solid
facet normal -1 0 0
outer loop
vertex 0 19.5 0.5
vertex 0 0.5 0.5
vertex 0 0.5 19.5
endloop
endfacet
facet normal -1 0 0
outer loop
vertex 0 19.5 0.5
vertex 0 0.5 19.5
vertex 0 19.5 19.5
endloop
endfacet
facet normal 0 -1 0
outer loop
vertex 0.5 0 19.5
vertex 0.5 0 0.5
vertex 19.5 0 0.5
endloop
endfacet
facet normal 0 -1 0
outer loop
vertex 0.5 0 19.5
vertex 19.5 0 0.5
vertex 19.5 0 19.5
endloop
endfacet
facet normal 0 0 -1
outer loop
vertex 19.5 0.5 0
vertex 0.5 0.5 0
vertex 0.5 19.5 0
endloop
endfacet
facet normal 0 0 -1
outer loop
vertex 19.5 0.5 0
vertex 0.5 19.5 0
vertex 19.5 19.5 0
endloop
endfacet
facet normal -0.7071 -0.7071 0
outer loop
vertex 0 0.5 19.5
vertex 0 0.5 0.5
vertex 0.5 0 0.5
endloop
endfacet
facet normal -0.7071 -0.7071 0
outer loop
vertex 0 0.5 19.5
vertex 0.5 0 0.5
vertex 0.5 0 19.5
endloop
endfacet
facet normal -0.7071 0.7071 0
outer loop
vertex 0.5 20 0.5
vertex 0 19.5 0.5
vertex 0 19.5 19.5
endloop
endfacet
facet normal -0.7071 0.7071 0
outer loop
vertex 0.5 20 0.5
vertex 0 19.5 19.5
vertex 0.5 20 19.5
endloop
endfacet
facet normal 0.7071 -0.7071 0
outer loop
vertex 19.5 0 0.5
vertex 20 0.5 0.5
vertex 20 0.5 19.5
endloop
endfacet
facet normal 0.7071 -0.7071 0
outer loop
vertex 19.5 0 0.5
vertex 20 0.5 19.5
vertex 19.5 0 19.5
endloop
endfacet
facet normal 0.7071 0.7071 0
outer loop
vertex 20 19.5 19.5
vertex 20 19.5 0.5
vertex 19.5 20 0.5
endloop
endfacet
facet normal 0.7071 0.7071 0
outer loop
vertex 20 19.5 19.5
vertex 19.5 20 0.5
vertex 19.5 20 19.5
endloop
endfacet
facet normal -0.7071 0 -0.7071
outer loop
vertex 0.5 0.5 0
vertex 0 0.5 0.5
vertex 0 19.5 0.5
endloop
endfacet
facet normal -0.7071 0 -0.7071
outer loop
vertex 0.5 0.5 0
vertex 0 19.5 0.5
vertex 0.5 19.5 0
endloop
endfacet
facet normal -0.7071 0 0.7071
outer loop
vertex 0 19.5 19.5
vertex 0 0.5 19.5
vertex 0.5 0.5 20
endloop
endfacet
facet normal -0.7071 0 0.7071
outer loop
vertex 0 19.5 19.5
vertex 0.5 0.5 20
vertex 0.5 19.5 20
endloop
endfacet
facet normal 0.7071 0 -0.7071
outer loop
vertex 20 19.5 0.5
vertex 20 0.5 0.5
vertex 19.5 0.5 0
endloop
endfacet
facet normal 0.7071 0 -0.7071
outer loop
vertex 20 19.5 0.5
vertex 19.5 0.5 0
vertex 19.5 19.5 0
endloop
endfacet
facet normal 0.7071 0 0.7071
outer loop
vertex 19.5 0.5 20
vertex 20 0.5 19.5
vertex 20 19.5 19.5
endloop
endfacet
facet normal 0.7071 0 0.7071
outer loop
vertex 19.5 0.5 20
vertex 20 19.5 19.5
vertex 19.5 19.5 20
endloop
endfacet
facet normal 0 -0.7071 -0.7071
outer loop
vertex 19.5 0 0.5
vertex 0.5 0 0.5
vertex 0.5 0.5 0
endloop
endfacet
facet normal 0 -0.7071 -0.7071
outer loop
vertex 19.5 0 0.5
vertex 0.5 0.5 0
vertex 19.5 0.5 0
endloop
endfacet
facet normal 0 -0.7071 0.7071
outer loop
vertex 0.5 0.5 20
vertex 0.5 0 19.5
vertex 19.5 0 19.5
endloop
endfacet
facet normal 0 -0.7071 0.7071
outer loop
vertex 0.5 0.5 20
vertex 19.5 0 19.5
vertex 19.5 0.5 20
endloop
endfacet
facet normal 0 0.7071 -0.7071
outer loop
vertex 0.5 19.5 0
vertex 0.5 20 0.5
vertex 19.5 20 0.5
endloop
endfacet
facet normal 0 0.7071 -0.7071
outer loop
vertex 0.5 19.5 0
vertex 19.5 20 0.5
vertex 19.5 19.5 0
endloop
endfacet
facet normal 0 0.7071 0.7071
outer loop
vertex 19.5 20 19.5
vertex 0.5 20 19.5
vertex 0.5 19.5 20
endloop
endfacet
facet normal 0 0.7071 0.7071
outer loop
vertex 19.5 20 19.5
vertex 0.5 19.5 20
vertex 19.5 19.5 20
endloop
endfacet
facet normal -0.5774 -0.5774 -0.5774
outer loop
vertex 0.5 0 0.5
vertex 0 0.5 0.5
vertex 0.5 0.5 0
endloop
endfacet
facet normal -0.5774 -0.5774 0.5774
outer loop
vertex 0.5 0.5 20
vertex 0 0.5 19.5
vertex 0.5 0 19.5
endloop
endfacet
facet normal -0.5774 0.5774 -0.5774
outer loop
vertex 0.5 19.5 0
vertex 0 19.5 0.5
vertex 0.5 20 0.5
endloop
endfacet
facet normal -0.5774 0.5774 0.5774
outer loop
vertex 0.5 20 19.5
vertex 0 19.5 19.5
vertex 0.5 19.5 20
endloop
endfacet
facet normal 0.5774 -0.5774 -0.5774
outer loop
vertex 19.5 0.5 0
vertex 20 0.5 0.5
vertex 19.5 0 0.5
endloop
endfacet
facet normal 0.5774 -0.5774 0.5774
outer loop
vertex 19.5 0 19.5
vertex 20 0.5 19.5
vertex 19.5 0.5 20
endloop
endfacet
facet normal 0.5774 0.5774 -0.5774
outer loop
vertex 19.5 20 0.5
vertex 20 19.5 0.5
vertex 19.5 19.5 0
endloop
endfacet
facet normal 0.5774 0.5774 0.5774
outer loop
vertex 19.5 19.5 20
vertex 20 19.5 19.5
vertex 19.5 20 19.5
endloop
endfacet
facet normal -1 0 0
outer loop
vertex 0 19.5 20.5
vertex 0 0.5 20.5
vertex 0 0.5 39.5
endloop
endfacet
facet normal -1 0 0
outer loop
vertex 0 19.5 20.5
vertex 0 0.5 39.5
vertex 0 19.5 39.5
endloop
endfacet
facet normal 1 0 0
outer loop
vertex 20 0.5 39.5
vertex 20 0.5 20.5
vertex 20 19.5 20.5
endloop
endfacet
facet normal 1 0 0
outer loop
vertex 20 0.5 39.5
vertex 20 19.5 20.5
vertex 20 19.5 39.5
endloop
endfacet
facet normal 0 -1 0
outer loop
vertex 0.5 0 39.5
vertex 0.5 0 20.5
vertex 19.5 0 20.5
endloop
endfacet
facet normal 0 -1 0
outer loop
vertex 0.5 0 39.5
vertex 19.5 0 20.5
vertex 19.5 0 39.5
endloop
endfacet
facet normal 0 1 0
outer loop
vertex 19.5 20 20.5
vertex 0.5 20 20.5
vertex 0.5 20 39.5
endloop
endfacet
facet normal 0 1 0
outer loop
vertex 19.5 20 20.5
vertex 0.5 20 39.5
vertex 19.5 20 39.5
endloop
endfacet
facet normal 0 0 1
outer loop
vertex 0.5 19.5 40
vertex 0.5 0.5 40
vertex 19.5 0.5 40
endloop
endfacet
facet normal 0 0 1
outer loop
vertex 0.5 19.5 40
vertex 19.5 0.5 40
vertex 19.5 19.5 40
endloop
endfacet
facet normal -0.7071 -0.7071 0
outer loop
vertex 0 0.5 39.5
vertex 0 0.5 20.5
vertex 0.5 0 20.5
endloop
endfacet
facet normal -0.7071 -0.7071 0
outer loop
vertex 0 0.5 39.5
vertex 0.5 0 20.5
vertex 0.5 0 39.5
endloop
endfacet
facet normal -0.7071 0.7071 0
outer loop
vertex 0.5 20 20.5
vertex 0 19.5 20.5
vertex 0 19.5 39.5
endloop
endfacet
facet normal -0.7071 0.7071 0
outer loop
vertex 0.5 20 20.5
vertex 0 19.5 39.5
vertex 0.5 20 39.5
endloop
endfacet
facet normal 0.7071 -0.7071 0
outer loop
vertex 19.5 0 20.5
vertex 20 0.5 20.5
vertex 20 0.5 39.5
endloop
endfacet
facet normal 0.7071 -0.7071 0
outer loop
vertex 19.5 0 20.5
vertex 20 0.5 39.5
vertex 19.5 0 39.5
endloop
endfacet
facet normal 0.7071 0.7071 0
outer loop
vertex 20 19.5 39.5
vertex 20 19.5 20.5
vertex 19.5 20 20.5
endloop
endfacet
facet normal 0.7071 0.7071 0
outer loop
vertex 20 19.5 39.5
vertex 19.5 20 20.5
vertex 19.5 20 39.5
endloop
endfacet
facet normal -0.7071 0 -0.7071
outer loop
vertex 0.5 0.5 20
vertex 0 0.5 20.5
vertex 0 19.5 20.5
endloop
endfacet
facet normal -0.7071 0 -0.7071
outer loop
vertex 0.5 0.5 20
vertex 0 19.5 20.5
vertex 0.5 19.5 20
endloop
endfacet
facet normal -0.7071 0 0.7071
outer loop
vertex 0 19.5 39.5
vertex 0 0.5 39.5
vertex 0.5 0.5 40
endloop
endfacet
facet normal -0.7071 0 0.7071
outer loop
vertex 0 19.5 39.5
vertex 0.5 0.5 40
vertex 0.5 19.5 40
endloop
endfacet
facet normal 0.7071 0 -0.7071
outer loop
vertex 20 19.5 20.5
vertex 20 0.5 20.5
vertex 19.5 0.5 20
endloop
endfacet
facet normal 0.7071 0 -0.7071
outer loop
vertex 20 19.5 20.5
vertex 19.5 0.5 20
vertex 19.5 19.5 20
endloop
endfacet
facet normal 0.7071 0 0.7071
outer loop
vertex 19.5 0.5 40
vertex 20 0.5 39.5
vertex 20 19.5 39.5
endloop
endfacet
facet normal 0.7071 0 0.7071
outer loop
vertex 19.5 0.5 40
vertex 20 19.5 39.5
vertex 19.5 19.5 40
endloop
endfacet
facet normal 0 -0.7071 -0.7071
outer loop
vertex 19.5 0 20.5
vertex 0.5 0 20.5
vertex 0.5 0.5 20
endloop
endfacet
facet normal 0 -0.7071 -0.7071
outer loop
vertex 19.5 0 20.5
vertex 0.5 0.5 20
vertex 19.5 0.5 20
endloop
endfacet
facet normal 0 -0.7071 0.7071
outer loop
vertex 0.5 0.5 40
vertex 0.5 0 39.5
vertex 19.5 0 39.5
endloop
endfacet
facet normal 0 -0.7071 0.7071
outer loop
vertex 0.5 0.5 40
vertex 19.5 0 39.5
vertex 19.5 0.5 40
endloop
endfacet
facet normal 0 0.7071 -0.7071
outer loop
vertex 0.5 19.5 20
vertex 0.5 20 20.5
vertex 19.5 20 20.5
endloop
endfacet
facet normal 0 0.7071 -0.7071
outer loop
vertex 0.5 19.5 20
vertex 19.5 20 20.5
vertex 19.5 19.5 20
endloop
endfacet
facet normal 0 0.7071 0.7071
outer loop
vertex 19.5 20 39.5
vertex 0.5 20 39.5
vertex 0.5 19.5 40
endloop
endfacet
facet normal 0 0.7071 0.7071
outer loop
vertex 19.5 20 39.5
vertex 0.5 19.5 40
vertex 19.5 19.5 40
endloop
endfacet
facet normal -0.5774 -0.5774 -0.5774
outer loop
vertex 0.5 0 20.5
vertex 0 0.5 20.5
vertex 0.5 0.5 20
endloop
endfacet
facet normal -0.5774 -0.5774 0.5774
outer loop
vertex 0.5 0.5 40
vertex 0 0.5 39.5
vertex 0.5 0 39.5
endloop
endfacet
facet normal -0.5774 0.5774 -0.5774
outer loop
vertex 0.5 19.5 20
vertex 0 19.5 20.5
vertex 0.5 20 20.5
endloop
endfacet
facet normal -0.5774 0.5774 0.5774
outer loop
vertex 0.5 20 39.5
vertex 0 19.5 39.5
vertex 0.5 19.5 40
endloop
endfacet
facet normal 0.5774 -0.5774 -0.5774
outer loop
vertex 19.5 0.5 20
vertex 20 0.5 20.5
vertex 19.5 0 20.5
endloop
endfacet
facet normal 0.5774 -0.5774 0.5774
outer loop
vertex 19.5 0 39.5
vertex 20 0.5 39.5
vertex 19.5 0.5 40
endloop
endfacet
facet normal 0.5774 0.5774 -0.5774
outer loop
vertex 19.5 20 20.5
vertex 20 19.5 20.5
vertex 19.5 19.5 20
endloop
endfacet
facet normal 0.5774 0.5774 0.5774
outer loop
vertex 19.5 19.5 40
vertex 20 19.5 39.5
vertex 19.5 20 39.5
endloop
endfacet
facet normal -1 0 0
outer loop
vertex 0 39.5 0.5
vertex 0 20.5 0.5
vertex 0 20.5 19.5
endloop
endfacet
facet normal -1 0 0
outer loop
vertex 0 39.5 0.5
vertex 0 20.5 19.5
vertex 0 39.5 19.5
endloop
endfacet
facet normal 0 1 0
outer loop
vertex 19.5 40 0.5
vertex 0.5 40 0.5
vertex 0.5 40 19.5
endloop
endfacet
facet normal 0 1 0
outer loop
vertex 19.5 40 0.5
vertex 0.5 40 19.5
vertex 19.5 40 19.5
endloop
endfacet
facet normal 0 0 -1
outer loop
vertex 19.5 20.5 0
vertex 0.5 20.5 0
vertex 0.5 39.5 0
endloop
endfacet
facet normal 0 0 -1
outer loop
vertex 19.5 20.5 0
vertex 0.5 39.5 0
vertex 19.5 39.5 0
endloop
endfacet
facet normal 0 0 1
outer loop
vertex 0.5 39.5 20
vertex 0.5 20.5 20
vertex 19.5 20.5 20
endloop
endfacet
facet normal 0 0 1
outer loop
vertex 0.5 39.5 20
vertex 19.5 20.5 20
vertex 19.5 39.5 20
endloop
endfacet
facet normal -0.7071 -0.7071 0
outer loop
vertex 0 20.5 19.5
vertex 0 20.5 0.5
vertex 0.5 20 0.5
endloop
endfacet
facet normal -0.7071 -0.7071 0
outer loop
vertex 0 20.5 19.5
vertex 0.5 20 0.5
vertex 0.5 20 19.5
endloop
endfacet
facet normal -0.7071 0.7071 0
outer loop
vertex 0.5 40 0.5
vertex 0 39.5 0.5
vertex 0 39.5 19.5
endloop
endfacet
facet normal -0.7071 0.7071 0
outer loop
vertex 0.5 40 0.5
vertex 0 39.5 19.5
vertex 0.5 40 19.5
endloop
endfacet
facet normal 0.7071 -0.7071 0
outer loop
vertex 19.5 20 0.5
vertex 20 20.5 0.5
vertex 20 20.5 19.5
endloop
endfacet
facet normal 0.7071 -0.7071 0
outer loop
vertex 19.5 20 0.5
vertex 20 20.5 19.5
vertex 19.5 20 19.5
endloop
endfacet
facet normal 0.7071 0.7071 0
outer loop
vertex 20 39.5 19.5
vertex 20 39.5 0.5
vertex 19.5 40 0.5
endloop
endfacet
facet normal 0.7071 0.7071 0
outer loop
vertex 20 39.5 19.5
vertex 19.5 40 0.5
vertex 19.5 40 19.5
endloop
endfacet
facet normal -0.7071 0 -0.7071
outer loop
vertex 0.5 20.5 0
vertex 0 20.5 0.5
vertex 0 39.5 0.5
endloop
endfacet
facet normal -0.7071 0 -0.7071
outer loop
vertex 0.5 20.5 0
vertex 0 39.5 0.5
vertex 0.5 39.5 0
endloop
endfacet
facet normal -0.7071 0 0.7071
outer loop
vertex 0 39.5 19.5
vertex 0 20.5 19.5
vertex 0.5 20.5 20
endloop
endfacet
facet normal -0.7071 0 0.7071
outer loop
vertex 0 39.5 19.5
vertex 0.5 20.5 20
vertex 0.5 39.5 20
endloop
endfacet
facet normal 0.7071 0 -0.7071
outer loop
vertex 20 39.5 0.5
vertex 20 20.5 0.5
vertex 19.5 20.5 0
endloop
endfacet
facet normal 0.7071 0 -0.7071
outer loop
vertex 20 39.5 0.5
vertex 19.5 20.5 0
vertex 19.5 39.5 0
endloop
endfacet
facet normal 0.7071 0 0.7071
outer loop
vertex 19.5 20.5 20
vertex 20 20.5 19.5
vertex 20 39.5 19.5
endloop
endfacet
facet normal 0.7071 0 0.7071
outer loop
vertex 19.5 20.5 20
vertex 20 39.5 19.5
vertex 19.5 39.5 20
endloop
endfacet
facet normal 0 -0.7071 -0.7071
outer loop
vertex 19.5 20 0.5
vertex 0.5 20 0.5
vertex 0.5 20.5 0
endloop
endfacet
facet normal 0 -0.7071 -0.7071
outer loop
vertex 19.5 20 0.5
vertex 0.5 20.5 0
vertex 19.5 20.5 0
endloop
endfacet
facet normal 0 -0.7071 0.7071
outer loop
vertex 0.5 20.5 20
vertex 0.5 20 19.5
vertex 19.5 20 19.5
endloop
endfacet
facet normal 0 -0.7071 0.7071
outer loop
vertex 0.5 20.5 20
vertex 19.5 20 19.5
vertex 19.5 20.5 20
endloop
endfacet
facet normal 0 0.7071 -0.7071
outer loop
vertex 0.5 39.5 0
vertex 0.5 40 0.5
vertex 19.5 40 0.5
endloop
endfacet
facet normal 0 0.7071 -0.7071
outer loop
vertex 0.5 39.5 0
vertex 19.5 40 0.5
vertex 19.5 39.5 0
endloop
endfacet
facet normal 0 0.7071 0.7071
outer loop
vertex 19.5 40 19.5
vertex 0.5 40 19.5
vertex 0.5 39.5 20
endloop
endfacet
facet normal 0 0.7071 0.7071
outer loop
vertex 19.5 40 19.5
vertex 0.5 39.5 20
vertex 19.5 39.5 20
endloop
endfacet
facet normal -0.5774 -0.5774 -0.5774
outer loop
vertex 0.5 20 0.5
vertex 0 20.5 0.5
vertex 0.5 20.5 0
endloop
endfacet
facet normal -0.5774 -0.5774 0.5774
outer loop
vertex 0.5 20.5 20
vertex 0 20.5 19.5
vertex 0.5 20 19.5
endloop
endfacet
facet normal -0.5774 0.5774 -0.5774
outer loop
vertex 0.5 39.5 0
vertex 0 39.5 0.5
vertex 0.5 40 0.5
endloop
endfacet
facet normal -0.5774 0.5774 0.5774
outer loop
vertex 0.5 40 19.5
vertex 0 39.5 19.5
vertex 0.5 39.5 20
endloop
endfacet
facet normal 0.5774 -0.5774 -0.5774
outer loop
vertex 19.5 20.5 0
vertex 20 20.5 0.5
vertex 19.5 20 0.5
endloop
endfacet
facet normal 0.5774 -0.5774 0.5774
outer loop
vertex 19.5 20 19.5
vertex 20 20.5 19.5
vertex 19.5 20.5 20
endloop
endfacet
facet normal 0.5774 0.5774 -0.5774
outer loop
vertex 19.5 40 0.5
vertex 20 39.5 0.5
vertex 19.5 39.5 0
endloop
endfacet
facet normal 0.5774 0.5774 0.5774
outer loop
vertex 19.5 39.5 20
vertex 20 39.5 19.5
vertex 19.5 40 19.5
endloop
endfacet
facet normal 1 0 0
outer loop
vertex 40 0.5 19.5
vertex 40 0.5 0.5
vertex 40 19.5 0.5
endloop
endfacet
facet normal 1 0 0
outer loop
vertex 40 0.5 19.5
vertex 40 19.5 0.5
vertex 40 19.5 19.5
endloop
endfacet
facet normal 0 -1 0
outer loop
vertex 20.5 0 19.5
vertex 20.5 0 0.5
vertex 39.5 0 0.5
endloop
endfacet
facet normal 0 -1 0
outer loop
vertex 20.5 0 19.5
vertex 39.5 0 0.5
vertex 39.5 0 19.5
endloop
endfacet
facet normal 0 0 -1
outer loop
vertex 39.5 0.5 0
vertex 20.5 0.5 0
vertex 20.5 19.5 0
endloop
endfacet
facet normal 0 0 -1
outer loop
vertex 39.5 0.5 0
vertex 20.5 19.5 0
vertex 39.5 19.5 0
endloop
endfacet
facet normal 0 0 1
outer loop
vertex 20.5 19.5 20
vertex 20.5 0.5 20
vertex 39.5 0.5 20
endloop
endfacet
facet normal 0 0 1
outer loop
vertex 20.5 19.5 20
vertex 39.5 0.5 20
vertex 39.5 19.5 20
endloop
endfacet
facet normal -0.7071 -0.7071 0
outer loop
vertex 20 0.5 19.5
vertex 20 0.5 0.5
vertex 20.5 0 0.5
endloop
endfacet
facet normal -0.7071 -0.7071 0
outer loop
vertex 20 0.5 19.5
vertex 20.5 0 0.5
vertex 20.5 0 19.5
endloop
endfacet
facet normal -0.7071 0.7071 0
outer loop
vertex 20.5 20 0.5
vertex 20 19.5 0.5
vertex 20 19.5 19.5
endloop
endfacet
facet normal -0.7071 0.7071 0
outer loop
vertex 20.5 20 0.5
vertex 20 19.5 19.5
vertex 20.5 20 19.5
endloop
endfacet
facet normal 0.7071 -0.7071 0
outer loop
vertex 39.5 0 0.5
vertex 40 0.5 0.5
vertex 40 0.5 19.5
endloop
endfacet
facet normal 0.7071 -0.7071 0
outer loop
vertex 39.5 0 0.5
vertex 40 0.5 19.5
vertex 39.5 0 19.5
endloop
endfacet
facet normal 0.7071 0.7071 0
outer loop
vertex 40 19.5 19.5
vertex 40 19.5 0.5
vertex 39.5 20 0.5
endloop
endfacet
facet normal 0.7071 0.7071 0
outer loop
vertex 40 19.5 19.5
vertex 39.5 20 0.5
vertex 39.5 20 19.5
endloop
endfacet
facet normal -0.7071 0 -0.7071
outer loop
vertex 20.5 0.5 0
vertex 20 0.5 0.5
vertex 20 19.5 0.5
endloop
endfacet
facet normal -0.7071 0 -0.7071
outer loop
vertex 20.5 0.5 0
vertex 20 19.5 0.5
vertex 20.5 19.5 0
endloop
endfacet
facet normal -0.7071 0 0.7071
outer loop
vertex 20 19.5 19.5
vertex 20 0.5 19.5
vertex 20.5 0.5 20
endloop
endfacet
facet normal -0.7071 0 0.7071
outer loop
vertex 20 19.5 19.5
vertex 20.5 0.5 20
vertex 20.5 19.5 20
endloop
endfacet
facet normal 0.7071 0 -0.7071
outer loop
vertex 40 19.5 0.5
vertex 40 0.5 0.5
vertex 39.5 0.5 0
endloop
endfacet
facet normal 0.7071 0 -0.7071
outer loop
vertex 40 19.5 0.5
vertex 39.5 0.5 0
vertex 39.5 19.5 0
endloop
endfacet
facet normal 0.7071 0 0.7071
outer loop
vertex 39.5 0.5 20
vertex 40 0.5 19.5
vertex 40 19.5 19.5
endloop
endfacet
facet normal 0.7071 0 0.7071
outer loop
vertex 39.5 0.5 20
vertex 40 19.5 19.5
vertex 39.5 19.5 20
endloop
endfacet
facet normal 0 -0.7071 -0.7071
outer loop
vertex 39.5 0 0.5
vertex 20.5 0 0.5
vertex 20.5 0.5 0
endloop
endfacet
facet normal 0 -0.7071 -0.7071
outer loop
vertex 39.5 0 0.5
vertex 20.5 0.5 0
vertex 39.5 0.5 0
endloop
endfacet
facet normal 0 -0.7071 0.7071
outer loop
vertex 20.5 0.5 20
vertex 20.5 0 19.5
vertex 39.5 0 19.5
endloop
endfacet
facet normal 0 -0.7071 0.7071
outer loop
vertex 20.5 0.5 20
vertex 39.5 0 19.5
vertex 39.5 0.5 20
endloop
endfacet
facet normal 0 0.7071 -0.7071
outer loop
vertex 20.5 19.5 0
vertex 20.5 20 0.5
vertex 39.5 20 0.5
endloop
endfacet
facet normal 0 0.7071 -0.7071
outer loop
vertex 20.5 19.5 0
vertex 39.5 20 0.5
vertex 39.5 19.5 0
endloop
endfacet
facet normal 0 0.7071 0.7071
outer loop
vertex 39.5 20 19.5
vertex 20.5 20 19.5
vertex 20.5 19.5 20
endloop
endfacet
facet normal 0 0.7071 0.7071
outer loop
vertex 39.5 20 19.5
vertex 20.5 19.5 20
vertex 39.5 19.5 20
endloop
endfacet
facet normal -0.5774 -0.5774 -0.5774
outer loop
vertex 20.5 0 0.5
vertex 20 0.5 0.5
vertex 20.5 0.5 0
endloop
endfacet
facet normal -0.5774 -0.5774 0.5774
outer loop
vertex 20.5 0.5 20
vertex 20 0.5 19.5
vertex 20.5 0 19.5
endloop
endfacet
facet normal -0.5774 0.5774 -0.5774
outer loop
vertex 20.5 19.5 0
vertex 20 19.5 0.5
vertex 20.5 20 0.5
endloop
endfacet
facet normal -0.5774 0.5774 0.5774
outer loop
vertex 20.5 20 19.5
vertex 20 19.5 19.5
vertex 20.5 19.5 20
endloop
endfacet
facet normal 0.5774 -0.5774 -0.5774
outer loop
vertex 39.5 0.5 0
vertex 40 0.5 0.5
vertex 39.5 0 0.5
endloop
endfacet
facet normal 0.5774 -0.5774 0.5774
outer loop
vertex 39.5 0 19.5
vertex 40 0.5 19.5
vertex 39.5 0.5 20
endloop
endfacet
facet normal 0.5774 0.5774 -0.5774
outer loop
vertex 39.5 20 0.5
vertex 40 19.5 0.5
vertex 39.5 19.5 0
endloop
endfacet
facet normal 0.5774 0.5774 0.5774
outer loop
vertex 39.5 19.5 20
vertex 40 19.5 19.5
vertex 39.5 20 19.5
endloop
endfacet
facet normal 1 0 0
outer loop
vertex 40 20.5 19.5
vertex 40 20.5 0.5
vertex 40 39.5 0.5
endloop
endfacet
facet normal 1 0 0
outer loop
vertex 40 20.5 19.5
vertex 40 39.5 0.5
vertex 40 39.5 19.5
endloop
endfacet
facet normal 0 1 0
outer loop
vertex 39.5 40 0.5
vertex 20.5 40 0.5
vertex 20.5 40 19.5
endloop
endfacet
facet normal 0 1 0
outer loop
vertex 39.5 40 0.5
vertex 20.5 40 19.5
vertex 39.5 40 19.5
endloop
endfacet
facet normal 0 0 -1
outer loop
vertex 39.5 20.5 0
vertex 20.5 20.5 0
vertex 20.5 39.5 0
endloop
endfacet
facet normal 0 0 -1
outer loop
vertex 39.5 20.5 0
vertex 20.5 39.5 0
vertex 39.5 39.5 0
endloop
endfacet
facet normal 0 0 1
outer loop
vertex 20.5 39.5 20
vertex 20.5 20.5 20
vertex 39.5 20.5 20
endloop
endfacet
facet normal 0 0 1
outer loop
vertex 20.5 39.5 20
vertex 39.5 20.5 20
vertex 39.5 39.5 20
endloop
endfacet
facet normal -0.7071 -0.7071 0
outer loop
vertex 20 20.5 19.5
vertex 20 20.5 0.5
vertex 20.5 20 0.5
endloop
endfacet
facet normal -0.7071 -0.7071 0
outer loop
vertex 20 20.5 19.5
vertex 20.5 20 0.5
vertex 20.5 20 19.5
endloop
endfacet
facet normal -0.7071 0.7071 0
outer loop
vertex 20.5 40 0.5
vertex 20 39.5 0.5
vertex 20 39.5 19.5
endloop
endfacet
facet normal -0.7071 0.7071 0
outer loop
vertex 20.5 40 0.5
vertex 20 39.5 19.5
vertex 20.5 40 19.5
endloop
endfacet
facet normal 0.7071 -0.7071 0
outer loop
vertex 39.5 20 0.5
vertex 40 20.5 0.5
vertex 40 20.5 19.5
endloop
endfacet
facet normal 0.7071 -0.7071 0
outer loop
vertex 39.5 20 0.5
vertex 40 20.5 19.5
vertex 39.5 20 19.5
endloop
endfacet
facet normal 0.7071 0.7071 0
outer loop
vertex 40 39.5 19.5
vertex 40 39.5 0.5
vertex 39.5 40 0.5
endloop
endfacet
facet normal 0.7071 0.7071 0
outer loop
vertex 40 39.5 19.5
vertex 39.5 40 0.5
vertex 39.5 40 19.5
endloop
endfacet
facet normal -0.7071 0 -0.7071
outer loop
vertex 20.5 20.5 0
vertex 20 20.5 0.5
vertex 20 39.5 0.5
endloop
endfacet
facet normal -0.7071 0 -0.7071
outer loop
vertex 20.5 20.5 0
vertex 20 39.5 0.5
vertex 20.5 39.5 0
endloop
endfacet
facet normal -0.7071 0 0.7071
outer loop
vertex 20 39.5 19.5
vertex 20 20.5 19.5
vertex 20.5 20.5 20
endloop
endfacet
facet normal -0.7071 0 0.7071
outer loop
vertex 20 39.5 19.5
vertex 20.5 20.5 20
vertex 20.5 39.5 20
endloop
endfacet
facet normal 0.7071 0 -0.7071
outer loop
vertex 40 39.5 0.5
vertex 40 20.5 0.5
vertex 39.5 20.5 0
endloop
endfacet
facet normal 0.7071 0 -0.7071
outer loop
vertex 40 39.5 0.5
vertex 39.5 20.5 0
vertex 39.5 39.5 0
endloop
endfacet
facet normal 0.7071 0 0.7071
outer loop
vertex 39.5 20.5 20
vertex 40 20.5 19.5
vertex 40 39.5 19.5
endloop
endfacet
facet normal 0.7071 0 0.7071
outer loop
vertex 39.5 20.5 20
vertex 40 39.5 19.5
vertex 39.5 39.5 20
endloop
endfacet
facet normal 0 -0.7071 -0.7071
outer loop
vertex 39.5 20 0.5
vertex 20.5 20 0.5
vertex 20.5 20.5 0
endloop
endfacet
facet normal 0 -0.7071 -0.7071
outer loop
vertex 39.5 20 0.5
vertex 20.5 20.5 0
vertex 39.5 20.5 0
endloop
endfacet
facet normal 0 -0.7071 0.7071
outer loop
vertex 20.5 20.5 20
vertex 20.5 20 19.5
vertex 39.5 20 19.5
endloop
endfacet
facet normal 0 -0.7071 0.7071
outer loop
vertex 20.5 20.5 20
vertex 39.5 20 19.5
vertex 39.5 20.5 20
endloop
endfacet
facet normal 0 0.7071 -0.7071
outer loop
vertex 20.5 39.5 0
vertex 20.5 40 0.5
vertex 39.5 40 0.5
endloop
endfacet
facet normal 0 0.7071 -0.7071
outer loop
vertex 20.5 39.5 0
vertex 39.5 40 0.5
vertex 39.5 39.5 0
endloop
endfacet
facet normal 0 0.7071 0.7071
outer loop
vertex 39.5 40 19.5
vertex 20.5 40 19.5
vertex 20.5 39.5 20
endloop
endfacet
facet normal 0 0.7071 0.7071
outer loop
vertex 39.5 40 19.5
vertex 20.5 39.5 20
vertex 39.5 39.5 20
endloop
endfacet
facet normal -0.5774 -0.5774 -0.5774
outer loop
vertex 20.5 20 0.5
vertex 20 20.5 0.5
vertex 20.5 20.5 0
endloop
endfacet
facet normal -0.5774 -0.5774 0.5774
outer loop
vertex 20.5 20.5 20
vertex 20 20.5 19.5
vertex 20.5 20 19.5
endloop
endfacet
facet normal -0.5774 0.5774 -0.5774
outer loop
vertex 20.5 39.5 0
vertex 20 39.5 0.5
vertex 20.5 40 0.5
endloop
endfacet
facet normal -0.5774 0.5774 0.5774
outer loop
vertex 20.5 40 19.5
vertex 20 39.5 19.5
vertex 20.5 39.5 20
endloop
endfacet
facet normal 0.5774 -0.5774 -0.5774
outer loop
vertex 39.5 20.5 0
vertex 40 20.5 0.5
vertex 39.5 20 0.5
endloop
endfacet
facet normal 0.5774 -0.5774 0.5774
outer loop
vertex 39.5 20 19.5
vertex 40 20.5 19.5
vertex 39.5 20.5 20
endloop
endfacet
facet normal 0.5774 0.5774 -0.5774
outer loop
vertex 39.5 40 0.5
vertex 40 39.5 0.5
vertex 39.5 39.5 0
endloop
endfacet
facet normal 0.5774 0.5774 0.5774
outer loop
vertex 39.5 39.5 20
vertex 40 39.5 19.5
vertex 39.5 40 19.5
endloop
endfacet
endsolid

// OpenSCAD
// Wongo piece 9: Stool. GPL-3.0; see README.txt.
// 0.5 mm chamfer at the default 20 mm pitch; unit scales everything.
unit = 20;
positions = [[0,0,0],[0,0,1],[0,1,0],[1,0,0],[1,1,0]];
union() { for (p = positions) translate(p * unit) { scale([unit,unit,unit]) polyhedron(points=[[0,0.025,0.025],[0,0.025,0.975],[0,0.975,0.025],[0,0.975,0.975],[1,0.025,0.025],[1,0.025,0.975],[1,0.975,0.025],[1,0.975,0.975],[0.025,0,0.025],[0.025,0,0.975],[0.975,0,0.025],[0.975,0,0.975],[0.025,1,0.025],[0.025,1,0.975],[0.975,1,0.025],[0.975,1,0.975],[0.025,0.025,0],[0.025,0.975,0],[0.975,0.025,0],[0.975,0.975,0],[0.025,0.025,1],[0.025,0.975,1],[0.975,0.025,1],[0.975,0.975,1]], faces=[[3,1,0,2],[7,6,4,5],[11,10,8,9],[15,13,12,14],[19,17,16,18],[23,22,20,21],[9,8,0,1],[13,3,2,12],[11,5,4,10],[15,14,6,7],[17,2,0,16],[21,20,1,3],[19,18,4,6],[23,7,5,22],[18,16,8,10],[22,11,9,20],[19,14,12,17],[23,21,13,15],[16,0,8],[9,1,20],[12,2,17],[21,3,13],[10,4,18],[22,5,11],[19,6,14],[15,7,23]], convexity=10); } }
